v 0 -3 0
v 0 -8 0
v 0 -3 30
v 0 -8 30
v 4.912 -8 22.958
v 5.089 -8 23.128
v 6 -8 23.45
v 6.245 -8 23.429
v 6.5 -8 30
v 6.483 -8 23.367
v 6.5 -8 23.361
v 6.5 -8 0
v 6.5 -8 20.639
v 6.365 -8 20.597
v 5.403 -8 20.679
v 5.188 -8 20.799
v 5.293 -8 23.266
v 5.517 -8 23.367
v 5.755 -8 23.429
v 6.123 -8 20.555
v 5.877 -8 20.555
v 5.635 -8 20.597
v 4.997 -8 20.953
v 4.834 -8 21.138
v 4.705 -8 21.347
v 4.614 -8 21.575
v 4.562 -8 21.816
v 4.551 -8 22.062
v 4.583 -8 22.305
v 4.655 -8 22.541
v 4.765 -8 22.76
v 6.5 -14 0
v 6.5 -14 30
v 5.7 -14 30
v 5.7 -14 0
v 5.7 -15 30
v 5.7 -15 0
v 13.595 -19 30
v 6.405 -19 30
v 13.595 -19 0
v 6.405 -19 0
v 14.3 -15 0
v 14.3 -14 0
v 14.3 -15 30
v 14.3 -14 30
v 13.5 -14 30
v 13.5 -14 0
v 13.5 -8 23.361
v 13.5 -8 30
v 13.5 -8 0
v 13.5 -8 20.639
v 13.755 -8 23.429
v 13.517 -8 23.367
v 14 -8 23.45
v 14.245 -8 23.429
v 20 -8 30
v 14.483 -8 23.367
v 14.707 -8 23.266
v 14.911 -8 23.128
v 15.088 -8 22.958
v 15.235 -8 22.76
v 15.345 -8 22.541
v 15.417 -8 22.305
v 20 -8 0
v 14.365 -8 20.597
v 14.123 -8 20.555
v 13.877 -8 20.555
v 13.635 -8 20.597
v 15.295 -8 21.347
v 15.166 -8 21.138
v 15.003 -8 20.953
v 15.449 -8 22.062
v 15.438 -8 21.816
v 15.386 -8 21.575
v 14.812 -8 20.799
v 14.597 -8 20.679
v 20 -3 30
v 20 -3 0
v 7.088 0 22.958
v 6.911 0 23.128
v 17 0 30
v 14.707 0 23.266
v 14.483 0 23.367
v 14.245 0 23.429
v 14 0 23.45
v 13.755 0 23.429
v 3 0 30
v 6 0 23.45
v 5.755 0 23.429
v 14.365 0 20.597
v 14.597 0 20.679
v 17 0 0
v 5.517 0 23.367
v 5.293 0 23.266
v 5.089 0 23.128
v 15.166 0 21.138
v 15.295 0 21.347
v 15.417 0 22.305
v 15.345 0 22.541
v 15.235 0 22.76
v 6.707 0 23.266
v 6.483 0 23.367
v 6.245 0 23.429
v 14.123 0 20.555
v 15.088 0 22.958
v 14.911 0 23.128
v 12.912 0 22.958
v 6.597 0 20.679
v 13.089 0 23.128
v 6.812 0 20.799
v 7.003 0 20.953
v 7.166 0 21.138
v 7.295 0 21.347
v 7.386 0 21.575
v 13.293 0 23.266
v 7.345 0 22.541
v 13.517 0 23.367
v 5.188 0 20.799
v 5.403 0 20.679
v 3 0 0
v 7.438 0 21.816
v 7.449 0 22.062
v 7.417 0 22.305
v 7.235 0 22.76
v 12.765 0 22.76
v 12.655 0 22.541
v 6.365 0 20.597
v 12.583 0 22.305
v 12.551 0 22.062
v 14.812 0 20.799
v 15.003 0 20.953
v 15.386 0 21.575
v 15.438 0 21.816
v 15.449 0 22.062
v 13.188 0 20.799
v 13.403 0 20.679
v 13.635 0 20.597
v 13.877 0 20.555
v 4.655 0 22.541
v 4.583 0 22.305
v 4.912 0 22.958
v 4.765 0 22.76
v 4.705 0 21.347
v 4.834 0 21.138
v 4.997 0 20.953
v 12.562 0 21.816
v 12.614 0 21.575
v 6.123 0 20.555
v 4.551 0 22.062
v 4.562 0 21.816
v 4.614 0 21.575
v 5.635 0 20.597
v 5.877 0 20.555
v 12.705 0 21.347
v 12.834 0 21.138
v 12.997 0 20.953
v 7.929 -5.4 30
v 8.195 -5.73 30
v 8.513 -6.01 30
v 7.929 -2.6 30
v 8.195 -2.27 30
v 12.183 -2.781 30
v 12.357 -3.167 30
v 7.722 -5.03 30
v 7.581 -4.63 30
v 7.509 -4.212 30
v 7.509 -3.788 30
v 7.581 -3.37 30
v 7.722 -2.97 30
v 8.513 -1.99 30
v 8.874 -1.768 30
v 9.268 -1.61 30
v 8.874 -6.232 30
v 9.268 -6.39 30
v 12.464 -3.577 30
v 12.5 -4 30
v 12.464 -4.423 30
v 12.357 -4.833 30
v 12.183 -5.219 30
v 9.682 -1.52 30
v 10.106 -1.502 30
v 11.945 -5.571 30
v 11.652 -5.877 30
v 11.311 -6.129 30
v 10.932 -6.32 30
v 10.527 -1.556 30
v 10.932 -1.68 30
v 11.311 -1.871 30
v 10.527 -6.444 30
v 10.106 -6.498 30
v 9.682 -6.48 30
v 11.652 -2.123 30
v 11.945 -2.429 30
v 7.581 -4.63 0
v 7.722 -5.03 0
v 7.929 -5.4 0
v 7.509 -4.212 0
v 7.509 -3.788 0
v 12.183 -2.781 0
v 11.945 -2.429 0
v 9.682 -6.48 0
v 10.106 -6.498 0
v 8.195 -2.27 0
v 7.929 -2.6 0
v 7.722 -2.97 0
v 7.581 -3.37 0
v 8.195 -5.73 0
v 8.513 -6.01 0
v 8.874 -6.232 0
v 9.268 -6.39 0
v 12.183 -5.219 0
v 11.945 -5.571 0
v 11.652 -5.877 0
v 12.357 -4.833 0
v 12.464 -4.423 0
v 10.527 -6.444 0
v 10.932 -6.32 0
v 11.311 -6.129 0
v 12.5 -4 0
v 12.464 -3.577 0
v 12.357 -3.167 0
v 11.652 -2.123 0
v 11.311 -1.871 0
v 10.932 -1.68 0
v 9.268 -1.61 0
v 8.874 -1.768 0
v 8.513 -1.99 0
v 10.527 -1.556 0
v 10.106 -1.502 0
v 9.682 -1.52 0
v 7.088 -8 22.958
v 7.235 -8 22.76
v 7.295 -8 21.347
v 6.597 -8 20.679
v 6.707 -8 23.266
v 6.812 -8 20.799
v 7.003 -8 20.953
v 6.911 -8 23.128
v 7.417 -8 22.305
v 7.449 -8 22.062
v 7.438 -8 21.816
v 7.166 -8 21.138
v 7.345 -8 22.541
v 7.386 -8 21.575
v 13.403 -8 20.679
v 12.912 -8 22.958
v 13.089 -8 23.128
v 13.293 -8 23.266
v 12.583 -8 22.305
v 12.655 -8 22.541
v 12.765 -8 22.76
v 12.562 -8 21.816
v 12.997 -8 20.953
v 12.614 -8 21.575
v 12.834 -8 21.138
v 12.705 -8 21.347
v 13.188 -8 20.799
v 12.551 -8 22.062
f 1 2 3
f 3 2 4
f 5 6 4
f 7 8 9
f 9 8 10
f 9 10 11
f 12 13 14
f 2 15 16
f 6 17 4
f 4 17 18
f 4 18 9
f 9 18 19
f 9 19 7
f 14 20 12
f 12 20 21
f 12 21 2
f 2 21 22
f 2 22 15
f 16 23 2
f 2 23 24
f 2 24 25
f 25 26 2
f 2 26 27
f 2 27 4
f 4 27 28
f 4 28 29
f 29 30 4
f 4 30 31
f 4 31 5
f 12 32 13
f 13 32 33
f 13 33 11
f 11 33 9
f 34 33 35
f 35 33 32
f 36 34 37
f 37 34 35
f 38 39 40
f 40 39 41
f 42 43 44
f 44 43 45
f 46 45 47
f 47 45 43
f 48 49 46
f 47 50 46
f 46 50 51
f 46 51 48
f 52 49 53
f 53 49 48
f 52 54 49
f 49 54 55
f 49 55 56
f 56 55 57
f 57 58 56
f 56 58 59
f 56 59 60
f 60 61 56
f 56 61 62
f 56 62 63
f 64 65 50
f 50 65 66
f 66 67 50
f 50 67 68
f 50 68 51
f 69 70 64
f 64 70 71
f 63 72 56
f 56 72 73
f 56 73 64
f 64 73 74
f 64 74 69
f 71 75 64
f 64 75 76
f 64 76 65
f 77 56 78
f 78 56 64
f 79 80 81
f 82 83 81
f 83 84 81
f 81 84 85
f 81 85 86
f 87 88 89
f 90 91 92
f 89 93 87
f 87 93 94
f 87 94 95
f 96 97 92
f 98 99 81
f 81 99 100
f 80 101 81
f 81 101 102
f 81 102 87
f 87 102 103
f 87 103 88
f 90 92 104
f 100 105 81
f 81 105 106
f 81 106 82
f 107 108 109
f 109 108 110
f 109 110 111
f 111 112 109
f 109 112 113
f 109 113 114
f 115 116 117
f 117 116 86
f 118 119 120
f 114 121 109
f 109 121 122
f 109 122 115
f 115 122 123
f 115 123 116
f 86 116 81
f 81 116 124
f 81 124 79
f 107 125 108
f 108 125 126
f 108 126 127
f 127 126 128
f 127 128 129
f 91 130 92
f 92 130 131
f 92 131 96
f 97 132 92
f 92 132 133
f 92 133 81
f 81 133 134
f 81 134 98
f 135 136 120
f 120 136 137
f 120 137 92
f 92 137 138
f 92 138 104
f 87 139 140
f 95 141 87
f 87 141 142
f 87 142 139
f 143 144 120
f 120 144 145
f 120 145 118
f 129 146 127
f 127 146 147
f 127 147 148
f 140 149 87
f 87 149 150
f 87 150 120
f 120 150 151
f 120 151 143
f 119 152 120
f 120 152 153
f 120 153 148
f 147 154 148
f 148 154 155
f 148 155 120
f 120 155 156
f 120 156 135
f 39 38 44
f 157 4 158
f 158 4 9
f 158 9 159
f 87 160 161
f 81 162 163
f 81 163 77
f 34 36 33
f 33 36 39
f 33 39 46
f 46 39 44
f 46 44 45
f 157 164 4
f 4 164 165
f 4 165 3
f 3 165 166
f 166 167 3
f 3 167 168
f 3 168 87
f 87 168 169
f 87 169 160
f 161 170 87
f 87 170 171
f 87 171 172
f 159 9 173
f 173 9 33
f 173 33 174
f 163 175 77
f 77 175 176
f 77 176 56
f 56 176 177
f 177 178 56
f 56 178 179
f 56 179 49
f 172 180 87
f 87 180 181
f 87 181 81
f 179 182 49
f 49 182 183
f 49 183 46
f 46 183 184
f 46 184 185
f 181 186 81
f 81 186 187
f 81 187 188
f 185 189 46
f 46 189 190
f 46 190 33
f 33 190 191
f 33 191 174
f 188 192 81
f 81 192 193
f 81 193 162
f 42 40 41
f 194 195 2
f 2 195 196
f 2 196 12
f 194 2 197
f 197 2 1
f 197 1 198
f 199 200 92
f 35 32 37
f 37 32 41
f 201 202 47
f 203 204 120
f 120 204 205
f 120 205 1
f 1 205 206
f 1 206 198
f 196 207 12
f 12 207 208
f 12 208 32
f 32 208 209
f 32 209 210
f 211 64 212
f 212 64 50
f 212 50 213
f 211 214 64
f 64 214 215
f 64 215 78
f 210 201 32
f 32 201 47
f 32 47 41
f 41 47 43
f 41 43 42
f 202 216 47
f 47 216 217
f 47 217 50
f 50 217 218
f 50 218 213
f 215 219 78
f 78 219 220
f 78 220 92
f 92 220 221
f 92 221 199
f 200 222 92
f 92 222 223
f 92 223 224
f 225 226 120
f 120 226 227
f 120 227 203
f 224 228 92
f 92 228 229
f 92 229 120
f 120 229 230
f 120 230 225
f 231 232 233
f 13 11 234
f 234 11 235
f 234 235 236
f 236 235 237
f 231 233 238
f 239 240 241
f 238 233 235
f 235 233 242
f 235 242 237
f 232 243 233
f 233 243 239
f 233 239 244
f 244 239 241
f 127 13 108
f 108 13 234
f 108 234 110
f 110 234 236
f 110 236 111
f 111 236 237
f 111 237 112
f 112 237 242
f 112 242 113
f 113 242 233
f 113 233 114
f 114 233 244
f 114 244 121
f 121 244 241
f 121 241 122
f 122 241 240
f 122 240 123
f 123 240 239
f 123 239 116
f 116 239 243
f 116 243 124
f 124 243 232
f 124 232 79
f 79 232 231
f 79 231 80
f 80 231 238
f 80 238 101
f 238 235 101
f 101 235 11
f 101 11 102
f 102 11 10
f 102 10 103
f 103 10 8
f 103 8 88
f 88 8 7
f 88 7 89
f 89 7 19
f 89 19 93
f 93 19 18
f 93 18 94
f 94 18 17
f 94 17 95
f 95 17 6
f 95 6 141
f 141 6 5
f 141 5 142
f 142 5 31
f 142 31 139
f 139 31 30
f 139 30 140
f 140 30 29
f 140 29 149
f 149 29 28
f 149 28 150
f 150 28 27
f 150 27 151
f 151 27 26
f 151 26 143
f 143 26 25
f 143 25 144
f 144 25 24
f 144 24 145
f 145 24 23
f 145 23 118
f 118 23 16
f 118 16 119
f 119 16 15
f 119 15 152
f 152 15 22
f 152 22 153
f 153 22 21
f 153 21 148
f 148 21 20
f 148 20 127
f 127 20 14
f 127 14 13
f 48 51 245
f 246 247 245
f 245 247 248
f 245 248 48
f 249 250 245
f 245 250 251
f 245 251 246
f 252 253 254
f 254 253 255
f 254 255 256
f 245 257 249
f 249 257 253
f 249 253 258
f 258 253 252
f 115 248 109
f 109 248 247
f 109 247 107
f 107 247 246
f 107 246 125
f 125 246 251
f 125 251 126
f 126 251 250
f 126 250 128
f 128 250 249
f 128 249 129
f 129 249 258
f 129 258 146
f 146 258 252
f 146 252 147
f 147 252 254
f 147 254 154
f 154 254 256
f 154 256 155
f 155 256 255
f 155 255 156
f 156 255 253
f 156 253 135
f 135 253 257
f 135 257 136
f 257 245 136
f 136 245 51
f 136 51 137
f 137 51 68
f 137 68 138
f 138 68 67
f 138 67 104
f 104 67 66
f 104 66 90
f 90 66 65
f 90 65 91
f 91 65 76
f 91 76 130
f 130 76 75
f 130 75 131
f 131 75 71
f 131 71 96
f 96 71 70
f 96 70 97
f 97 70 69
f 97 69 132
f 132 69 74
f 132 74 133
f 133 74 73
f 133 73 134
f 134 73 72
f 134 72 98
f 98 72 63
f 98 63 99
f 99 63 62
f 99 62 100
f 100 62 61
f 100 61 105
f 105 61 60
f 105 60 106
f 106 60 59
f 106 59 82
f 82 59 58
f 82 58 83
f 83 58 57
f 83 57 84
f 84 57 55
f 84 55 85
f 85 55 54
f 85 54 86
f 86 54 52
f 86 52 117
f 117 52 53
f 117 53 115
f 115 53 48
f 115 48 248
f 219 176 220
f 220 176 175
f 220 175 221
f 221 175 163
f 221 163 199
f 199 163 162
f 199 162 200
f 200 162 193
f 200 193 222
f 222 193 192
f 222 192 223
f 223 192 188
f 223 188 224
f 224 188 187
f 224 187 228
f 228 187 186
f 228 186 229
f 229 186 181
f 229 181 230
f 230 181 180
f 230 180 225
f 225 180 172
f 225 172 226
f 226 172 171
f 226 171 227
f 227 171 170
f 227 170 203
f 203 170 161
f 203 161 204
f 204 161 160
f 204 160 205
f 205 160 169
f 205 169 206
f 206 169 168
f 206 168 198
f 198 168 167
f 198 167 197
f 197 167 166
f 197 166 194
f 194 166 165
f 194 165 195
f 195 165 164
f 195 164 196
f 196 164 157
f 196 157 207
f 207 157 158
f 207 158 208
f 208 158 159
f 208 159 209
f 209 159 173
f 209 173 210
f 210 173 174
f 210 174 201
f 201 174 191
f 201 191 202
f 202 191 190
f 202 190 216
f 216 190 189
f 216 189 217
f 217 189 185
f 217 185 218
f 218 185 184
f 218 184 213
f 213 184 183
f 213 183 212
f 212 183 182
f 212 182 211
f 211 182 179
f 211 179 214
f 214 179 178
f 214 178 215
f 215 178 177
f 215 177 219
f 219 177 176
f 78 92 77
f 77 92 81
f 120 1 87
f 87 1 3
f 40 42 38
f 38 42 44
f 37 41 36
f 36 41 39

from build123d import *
from OCP.BRepFilletAPI import BRepFilletAPI_MakeChamfer

# Parameters (mm, degrees)
BOSS_EXTRUDE1_DEPTH = 30
SKETCH2_R           = 1.45
CUT_EXTRUDE1_DEPTH  = 8
SKETCH3_R           = 2.5
CUT_EXTRUDE2_DEPTH  = 41.755367745
CHAMFER1_SIZE       = 3
CHAMFER2_SIZE       = 4
CHAMFER2_SIZE2      = 0.705307923


with BuildPart() as part:
    # Sketch1 → Boss-Extrude1 (new body)
    with BuildSketch(Plane.XY):
        Polygon((0, 0), (20, 0), (20, -8), (13.5, -8), (13.5, -14), (14.3, -14), (14.3, -19), (5.7, -19), (5.7, -14), (6.5, -14), (6.5, -8), (0, -8), align=None)
    extrude(amount=BOSS_EXTRUDE1_DEPTH)

    # Sketch2 → Cut-Extrude1 (cut)
    with BuildSketch(Plane(origin=(0, 0, 0), x_dir=(1, 0, 0), z_dir=(0, 1, 0))):
        with Locations(Location((14, -22, 0), (0, 0, 270))):
            Circle(SKETCH2_R)
        with Locations(Location((6, -22, 0), (0, 0, 270))):
            Circle(SKETCH2_R)
    extrude(amount=-CUT_EXTRUDE1_DEPTH, mode=Mode.SUBTRACT)

    # Sketch3 → Cut-Extrude2 (cut, through all)
    with BuildSketch(Plane.XY.offset(30)):
        with Locations((10, -4)):
            Circle(SKETCH3_R)
    extrude(amount=-CUT_EXTRUDE2_DEPTH, mode=Mode.SUBTRACT)

    # Chamfer1
    chamfer1_edges = [part.edges().sort_by_distance(p)[0] for p in [
        (0, 0, 15),
        (20, 0, 15),
    ]]
    chamfer(chamfer1_edges, length=CHAMFER1_SIZE)

    # Chamfer2: one chamfer whose edges measure the first distance from different faces: ONE call of the kernel's chamfer builder (chamfer() names one face for all edges)
    chamfer2_edges_1 = [part.edges().sort_by_distance(p)[0] for p in [
        (14.3, -19, 15),
    ]]
    chamfer2_side_1 = [part.faces().sort_by_distance(p)[0] for p in [
        (14.3, -16.5, 15),
    ]]
    chamfer2_edges_2 = [part.edges().sort_by_distance(p)[0] for p in [
        (5.7, -19, 15),
    ]]
    chamfer2_side_2 = [part.faces().sort_by_distance(p)[0] for p in [
        (5.7, -16.5, 15),
    ]]
    chamfer2 = BRepFilletAPI_MakeChamfer(part.part.solid().wrapped)
    for e in chamfer2_edges_1:
        chamfer2.Add(CHAMFER2_SIZE, CHAMFER2_SIZE2, e.wrapped, chamfer2_side_1[0].wrapped)  # the first distance lies on this face
    for e in chamfer2_edges_2:
        chamfer2.Add(CHAMFER2_SIZE, CHAMFER2_SIZE2, e.wrapped, chamfer2_side_2[0].wrapped)  # the first distance lies on this face
    add(Compound.cast(chamfer2.Shape()), mode=Mode.REPLACE)


solid = part.part
